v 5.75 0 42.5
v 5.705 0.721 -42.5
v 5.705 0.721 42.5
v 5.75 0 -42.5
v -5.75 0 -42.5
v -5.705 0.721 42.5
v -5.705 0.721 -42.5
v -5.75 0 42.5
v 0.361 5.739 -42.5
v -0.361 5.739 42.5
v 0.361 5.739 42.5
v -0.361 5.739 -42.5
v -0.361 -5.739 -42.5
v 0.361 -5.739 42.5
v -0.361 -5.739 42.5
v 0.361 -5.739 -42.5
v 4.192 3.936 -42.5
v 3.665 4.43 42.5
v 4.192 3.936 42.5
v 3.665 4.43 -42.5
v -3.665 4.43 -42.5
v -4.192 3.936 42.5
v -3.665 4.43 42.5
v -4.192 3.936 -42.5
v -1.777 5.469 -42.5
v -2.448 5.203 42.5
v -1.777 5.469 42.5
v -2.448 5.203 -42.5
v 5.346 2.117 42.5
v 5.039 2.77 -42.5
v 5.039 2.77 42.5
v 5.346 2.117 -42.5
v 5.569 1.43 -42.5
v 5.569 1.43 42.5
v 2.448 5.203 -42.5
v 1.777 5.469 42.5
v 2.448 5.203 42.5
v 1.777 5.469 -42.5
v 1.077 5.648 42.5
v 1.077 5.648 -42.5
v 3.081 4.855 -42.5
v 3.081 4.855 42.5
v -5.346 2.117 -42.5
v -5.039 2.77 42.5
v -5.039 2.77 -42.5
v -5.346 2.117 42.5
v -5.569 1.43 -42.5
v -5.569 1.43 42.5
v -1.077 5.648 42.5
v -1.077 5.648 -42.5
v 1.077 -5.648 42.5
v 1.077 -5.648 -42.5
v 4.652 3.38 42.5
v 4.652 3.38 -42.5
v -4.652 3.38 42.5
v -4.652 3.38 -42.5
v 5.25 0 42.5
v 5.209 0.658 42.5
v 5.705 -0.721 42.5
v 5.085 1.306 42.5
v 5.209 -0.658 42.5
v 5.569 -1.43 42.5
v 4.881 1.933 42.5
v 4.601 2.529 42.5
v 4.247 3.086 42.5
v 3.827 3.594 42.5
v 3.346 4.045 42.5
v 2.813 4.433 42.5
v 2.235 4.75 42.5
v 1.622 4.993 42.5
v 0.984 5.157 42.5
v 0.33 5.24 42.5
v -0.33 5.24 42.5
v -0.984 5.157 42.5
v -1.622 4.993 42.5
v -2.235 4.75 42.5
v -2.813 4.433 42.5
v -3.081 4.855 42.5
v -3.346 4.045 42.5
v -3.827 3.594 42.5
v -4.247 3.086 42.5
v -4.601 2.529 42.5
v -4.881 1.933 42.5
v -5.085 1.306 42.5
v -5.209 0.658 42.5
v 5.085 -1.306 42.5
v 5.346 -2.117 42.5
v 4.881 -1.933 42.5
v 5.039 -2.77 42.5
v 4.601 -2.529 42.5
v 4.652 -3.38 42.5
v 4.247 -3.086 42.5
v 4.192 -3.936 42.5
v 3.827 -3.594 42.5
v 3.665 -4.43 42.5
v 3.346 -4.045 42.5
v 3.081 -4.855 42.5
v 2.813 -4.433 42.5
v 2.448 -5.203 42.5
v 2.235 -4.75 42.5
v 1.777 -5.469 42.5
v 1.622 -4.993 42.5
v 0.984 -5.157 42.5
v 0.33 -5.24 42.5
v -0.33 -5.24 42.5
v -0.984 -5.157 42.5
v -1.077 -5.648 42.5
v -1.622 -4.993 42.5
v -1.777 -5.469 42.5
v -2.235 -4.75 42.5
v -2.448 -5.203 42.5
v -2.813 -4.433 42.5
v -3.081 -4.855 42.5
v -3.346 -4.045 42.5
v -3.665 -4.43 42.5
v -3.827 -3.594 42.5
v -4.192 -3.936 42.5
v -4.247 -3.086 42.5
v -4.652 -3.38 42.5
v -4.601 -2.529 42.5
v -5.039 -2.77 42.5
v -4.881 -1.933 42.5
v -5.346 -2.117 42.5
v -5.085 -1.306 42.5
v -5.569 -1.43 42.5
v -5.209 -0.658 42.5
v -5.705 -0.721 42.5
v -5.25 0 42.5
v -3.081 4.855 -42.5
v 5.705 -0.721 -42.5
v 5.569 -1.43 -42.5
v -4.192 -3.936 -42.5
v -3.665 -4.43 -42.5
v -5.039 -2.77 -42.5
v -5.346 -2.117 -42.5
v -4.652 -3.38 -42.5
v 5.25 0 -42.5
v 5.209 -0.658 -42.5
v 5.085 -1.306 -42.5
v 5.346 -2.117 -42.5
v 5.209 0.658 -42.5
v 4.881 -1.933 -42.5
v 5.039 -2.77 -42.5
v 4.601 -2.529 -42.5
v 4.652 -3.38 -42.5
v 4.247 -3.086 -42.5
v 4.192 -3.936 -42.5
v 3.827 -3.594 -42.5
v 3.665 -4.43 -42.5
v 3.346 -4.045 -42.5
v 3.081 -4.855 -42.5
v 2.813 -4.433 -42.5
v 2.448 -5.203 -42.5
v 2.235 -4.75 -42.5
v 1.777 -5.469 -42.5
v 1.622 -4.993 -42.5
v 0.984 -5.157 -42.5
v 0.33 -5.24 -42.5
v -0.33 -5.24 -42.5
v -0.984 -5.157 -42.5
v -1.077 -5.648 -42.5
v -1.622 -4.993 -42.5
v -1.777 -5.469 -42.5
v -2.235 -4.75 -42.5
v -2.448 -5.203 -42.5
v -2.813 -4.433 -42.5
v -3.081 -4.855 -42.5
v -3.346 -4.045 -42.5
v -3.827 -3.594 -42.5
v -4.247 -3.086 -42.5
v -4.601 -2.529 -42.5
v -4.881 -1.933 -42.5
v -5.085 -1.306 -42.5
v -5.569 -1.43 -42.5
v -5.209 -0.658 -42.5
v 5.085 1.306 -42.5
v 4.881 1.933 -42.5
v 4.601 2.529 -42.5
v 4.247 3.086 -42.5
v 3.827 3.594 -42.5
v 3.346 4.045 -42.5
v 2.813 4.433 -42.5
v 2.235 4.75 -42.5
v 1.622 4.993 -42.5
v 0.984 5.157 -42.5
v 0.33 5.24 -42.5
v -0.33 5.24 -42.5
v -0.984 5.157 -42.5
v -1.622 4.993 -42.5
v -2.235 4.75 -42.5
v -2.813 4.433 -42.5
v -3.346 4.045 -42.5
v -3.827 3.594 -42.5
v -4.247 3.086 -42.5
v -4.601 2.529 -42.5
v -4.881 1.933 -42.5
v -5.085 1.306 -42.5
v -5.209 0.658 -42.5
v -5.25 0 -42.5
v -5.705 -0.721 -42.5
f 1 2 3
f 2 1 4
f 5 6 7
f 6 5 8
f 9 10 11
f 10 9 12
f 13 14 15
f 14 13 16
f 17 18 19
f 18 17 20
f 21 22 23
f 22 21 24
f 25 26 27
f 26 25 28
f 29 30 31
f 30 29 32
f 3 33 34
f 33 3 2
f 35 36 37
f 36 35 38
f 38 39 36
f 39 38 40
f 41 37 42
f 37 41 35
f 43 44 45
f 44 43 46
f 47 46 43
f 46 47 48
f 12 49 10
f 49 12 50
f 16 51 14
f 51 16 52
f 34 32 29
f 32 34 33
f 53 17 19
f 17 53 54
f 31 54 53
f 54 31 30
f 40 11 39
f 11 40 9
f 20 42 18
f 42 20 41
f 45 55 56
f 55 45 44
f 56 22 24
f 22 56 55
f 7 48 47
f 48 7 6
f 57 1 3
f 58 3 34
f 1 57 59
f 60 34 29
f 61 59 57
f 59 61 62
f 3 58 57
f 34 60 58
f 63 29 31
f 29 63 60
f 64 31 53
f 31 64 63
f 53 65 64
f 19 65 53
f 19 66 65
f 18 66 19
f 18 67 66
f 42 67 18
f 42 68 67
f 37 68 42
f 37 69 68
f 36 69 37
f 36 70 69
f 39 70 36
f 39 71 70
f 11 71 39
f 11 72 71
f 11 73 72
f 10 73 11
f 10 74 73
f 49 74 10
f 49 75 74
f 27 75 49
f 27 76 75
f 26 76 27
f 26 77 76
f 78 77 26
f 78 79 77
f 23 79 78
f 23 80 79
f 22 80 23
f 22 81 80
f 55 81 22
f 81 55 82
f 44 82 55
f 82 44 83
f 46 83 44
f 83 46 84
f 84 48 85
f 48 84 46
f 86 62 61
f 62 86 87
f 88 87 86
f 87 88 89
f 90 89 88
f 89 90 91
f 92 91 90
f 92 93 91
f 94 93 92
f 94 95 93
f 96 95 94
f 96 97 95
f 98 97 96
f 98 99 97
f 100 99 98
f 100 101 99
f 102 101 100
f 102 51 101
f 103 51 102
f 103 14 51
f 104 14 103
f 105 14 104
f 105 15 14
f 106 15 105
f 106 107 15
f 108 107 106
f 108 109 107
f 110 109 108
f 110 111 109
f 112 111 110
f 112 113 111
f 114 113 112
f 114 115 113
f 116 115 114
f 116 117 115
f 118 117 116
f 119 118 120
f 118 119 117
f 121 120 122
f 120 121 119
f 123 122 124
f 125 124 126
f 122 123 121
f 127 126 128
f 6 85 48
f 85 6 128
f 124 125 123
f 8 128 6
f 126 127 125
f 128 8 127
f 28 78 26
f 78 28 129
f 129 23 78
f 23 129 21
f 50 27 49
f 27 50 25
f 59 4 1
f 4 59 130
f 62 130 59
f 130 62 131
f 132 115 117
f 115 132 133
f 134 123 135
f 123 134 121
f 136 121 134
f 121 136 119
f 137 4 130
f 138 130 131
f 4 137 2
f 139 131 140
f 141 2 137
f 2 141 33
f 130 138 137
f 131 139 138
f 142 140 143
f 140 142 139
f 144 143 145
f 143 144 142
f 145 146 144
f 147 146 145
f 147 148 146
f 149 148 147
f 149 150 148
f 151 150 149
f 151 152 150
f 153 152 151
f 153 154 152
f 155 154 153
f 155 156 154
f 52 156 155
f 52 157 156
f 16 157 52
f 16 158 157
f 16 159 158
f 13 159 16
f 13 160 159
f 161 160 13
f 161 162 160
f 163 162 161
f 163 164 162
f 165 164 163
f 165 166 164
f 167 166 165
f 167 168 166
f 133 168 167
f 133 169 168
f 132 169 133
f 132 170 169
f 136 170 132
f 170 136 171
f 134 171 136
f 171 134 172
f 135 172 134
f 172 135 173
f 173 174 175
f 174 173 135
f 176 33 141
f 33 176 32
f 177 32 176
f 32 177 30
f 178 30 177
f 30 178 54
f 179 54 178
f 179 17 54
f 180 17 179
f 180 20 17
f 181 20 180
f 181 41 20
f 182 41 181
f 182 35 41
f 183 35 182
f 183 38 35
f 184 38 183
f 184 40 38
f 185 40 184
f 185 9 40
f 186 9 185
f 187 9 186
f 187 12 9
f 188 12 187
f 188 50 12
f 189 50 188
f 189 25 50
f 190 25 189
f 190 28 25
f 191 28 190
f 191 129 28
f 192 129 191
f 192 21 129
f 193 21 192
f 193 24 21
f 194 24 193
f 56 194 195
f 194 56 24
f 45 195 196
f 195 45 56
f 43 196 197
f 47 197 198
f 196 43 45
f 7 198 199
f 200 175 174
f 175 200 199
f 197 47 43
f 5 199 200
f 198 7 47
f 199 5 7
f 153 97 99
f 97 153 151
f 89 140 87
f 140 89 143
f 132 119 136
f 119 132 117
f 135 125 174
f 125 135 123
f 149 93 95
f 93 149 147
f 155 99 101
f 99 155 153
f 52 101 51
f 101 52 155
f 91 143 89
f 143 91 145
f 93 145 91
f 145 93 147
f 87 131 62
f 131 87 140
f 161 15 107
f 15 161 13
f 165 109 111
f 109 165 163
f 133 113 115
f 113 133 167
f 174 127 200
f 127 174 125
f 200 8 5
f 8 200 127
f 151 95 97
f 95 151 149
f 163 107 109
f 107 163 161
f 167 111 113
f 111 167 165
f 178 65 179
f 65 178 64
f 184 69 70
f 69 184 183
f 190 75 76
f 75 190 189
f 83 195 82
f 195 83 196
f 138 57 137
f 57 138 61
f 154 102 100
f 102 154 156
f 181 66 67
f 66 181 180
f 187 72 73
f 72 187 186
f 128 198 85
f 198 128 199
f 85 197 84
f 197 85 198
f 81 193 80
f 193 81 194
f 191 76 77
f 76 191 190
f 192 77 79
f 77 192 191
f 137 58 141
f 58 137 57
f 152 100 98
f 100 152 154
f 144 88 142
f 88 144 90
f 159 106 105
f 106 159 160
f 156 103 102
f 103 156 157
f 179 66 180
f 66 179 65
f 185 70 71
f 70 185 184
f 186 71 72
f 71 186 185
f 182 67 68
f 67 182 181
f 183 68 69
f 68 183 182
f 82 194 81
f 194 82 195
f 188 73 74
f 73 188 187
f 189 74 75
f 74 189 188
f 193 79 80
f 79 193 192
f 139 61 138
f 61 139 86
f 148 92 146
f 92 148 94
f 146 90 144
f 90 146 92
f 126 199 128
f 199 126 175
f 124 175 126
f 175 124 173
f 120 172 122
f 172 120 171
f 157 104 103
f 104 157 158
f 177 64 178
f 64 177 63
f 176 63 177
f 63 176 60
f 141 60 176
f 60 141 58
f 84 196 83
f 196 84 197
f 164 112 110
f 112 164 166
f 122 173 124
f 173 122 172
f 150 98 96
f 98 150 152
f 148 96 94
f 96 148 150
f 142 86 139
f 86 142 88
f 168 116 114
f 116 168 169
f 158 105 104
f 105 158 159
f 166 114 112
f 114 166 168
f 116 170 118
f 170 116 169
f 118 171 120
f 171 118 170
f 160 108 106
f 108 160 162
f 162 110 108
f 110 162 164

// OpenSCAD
$fn = 50;


difference() {
	union() {
		translate(v = [0, 0, -42.5000000000]) {
			cylinder(h = 85, r = 5.7500000000);
		}
	}
	union() {
		translate(v = [0, 0, -100.0000000000]) {
			cylinder(h = 200, r = 5.2500000000);
		}
	}
}
